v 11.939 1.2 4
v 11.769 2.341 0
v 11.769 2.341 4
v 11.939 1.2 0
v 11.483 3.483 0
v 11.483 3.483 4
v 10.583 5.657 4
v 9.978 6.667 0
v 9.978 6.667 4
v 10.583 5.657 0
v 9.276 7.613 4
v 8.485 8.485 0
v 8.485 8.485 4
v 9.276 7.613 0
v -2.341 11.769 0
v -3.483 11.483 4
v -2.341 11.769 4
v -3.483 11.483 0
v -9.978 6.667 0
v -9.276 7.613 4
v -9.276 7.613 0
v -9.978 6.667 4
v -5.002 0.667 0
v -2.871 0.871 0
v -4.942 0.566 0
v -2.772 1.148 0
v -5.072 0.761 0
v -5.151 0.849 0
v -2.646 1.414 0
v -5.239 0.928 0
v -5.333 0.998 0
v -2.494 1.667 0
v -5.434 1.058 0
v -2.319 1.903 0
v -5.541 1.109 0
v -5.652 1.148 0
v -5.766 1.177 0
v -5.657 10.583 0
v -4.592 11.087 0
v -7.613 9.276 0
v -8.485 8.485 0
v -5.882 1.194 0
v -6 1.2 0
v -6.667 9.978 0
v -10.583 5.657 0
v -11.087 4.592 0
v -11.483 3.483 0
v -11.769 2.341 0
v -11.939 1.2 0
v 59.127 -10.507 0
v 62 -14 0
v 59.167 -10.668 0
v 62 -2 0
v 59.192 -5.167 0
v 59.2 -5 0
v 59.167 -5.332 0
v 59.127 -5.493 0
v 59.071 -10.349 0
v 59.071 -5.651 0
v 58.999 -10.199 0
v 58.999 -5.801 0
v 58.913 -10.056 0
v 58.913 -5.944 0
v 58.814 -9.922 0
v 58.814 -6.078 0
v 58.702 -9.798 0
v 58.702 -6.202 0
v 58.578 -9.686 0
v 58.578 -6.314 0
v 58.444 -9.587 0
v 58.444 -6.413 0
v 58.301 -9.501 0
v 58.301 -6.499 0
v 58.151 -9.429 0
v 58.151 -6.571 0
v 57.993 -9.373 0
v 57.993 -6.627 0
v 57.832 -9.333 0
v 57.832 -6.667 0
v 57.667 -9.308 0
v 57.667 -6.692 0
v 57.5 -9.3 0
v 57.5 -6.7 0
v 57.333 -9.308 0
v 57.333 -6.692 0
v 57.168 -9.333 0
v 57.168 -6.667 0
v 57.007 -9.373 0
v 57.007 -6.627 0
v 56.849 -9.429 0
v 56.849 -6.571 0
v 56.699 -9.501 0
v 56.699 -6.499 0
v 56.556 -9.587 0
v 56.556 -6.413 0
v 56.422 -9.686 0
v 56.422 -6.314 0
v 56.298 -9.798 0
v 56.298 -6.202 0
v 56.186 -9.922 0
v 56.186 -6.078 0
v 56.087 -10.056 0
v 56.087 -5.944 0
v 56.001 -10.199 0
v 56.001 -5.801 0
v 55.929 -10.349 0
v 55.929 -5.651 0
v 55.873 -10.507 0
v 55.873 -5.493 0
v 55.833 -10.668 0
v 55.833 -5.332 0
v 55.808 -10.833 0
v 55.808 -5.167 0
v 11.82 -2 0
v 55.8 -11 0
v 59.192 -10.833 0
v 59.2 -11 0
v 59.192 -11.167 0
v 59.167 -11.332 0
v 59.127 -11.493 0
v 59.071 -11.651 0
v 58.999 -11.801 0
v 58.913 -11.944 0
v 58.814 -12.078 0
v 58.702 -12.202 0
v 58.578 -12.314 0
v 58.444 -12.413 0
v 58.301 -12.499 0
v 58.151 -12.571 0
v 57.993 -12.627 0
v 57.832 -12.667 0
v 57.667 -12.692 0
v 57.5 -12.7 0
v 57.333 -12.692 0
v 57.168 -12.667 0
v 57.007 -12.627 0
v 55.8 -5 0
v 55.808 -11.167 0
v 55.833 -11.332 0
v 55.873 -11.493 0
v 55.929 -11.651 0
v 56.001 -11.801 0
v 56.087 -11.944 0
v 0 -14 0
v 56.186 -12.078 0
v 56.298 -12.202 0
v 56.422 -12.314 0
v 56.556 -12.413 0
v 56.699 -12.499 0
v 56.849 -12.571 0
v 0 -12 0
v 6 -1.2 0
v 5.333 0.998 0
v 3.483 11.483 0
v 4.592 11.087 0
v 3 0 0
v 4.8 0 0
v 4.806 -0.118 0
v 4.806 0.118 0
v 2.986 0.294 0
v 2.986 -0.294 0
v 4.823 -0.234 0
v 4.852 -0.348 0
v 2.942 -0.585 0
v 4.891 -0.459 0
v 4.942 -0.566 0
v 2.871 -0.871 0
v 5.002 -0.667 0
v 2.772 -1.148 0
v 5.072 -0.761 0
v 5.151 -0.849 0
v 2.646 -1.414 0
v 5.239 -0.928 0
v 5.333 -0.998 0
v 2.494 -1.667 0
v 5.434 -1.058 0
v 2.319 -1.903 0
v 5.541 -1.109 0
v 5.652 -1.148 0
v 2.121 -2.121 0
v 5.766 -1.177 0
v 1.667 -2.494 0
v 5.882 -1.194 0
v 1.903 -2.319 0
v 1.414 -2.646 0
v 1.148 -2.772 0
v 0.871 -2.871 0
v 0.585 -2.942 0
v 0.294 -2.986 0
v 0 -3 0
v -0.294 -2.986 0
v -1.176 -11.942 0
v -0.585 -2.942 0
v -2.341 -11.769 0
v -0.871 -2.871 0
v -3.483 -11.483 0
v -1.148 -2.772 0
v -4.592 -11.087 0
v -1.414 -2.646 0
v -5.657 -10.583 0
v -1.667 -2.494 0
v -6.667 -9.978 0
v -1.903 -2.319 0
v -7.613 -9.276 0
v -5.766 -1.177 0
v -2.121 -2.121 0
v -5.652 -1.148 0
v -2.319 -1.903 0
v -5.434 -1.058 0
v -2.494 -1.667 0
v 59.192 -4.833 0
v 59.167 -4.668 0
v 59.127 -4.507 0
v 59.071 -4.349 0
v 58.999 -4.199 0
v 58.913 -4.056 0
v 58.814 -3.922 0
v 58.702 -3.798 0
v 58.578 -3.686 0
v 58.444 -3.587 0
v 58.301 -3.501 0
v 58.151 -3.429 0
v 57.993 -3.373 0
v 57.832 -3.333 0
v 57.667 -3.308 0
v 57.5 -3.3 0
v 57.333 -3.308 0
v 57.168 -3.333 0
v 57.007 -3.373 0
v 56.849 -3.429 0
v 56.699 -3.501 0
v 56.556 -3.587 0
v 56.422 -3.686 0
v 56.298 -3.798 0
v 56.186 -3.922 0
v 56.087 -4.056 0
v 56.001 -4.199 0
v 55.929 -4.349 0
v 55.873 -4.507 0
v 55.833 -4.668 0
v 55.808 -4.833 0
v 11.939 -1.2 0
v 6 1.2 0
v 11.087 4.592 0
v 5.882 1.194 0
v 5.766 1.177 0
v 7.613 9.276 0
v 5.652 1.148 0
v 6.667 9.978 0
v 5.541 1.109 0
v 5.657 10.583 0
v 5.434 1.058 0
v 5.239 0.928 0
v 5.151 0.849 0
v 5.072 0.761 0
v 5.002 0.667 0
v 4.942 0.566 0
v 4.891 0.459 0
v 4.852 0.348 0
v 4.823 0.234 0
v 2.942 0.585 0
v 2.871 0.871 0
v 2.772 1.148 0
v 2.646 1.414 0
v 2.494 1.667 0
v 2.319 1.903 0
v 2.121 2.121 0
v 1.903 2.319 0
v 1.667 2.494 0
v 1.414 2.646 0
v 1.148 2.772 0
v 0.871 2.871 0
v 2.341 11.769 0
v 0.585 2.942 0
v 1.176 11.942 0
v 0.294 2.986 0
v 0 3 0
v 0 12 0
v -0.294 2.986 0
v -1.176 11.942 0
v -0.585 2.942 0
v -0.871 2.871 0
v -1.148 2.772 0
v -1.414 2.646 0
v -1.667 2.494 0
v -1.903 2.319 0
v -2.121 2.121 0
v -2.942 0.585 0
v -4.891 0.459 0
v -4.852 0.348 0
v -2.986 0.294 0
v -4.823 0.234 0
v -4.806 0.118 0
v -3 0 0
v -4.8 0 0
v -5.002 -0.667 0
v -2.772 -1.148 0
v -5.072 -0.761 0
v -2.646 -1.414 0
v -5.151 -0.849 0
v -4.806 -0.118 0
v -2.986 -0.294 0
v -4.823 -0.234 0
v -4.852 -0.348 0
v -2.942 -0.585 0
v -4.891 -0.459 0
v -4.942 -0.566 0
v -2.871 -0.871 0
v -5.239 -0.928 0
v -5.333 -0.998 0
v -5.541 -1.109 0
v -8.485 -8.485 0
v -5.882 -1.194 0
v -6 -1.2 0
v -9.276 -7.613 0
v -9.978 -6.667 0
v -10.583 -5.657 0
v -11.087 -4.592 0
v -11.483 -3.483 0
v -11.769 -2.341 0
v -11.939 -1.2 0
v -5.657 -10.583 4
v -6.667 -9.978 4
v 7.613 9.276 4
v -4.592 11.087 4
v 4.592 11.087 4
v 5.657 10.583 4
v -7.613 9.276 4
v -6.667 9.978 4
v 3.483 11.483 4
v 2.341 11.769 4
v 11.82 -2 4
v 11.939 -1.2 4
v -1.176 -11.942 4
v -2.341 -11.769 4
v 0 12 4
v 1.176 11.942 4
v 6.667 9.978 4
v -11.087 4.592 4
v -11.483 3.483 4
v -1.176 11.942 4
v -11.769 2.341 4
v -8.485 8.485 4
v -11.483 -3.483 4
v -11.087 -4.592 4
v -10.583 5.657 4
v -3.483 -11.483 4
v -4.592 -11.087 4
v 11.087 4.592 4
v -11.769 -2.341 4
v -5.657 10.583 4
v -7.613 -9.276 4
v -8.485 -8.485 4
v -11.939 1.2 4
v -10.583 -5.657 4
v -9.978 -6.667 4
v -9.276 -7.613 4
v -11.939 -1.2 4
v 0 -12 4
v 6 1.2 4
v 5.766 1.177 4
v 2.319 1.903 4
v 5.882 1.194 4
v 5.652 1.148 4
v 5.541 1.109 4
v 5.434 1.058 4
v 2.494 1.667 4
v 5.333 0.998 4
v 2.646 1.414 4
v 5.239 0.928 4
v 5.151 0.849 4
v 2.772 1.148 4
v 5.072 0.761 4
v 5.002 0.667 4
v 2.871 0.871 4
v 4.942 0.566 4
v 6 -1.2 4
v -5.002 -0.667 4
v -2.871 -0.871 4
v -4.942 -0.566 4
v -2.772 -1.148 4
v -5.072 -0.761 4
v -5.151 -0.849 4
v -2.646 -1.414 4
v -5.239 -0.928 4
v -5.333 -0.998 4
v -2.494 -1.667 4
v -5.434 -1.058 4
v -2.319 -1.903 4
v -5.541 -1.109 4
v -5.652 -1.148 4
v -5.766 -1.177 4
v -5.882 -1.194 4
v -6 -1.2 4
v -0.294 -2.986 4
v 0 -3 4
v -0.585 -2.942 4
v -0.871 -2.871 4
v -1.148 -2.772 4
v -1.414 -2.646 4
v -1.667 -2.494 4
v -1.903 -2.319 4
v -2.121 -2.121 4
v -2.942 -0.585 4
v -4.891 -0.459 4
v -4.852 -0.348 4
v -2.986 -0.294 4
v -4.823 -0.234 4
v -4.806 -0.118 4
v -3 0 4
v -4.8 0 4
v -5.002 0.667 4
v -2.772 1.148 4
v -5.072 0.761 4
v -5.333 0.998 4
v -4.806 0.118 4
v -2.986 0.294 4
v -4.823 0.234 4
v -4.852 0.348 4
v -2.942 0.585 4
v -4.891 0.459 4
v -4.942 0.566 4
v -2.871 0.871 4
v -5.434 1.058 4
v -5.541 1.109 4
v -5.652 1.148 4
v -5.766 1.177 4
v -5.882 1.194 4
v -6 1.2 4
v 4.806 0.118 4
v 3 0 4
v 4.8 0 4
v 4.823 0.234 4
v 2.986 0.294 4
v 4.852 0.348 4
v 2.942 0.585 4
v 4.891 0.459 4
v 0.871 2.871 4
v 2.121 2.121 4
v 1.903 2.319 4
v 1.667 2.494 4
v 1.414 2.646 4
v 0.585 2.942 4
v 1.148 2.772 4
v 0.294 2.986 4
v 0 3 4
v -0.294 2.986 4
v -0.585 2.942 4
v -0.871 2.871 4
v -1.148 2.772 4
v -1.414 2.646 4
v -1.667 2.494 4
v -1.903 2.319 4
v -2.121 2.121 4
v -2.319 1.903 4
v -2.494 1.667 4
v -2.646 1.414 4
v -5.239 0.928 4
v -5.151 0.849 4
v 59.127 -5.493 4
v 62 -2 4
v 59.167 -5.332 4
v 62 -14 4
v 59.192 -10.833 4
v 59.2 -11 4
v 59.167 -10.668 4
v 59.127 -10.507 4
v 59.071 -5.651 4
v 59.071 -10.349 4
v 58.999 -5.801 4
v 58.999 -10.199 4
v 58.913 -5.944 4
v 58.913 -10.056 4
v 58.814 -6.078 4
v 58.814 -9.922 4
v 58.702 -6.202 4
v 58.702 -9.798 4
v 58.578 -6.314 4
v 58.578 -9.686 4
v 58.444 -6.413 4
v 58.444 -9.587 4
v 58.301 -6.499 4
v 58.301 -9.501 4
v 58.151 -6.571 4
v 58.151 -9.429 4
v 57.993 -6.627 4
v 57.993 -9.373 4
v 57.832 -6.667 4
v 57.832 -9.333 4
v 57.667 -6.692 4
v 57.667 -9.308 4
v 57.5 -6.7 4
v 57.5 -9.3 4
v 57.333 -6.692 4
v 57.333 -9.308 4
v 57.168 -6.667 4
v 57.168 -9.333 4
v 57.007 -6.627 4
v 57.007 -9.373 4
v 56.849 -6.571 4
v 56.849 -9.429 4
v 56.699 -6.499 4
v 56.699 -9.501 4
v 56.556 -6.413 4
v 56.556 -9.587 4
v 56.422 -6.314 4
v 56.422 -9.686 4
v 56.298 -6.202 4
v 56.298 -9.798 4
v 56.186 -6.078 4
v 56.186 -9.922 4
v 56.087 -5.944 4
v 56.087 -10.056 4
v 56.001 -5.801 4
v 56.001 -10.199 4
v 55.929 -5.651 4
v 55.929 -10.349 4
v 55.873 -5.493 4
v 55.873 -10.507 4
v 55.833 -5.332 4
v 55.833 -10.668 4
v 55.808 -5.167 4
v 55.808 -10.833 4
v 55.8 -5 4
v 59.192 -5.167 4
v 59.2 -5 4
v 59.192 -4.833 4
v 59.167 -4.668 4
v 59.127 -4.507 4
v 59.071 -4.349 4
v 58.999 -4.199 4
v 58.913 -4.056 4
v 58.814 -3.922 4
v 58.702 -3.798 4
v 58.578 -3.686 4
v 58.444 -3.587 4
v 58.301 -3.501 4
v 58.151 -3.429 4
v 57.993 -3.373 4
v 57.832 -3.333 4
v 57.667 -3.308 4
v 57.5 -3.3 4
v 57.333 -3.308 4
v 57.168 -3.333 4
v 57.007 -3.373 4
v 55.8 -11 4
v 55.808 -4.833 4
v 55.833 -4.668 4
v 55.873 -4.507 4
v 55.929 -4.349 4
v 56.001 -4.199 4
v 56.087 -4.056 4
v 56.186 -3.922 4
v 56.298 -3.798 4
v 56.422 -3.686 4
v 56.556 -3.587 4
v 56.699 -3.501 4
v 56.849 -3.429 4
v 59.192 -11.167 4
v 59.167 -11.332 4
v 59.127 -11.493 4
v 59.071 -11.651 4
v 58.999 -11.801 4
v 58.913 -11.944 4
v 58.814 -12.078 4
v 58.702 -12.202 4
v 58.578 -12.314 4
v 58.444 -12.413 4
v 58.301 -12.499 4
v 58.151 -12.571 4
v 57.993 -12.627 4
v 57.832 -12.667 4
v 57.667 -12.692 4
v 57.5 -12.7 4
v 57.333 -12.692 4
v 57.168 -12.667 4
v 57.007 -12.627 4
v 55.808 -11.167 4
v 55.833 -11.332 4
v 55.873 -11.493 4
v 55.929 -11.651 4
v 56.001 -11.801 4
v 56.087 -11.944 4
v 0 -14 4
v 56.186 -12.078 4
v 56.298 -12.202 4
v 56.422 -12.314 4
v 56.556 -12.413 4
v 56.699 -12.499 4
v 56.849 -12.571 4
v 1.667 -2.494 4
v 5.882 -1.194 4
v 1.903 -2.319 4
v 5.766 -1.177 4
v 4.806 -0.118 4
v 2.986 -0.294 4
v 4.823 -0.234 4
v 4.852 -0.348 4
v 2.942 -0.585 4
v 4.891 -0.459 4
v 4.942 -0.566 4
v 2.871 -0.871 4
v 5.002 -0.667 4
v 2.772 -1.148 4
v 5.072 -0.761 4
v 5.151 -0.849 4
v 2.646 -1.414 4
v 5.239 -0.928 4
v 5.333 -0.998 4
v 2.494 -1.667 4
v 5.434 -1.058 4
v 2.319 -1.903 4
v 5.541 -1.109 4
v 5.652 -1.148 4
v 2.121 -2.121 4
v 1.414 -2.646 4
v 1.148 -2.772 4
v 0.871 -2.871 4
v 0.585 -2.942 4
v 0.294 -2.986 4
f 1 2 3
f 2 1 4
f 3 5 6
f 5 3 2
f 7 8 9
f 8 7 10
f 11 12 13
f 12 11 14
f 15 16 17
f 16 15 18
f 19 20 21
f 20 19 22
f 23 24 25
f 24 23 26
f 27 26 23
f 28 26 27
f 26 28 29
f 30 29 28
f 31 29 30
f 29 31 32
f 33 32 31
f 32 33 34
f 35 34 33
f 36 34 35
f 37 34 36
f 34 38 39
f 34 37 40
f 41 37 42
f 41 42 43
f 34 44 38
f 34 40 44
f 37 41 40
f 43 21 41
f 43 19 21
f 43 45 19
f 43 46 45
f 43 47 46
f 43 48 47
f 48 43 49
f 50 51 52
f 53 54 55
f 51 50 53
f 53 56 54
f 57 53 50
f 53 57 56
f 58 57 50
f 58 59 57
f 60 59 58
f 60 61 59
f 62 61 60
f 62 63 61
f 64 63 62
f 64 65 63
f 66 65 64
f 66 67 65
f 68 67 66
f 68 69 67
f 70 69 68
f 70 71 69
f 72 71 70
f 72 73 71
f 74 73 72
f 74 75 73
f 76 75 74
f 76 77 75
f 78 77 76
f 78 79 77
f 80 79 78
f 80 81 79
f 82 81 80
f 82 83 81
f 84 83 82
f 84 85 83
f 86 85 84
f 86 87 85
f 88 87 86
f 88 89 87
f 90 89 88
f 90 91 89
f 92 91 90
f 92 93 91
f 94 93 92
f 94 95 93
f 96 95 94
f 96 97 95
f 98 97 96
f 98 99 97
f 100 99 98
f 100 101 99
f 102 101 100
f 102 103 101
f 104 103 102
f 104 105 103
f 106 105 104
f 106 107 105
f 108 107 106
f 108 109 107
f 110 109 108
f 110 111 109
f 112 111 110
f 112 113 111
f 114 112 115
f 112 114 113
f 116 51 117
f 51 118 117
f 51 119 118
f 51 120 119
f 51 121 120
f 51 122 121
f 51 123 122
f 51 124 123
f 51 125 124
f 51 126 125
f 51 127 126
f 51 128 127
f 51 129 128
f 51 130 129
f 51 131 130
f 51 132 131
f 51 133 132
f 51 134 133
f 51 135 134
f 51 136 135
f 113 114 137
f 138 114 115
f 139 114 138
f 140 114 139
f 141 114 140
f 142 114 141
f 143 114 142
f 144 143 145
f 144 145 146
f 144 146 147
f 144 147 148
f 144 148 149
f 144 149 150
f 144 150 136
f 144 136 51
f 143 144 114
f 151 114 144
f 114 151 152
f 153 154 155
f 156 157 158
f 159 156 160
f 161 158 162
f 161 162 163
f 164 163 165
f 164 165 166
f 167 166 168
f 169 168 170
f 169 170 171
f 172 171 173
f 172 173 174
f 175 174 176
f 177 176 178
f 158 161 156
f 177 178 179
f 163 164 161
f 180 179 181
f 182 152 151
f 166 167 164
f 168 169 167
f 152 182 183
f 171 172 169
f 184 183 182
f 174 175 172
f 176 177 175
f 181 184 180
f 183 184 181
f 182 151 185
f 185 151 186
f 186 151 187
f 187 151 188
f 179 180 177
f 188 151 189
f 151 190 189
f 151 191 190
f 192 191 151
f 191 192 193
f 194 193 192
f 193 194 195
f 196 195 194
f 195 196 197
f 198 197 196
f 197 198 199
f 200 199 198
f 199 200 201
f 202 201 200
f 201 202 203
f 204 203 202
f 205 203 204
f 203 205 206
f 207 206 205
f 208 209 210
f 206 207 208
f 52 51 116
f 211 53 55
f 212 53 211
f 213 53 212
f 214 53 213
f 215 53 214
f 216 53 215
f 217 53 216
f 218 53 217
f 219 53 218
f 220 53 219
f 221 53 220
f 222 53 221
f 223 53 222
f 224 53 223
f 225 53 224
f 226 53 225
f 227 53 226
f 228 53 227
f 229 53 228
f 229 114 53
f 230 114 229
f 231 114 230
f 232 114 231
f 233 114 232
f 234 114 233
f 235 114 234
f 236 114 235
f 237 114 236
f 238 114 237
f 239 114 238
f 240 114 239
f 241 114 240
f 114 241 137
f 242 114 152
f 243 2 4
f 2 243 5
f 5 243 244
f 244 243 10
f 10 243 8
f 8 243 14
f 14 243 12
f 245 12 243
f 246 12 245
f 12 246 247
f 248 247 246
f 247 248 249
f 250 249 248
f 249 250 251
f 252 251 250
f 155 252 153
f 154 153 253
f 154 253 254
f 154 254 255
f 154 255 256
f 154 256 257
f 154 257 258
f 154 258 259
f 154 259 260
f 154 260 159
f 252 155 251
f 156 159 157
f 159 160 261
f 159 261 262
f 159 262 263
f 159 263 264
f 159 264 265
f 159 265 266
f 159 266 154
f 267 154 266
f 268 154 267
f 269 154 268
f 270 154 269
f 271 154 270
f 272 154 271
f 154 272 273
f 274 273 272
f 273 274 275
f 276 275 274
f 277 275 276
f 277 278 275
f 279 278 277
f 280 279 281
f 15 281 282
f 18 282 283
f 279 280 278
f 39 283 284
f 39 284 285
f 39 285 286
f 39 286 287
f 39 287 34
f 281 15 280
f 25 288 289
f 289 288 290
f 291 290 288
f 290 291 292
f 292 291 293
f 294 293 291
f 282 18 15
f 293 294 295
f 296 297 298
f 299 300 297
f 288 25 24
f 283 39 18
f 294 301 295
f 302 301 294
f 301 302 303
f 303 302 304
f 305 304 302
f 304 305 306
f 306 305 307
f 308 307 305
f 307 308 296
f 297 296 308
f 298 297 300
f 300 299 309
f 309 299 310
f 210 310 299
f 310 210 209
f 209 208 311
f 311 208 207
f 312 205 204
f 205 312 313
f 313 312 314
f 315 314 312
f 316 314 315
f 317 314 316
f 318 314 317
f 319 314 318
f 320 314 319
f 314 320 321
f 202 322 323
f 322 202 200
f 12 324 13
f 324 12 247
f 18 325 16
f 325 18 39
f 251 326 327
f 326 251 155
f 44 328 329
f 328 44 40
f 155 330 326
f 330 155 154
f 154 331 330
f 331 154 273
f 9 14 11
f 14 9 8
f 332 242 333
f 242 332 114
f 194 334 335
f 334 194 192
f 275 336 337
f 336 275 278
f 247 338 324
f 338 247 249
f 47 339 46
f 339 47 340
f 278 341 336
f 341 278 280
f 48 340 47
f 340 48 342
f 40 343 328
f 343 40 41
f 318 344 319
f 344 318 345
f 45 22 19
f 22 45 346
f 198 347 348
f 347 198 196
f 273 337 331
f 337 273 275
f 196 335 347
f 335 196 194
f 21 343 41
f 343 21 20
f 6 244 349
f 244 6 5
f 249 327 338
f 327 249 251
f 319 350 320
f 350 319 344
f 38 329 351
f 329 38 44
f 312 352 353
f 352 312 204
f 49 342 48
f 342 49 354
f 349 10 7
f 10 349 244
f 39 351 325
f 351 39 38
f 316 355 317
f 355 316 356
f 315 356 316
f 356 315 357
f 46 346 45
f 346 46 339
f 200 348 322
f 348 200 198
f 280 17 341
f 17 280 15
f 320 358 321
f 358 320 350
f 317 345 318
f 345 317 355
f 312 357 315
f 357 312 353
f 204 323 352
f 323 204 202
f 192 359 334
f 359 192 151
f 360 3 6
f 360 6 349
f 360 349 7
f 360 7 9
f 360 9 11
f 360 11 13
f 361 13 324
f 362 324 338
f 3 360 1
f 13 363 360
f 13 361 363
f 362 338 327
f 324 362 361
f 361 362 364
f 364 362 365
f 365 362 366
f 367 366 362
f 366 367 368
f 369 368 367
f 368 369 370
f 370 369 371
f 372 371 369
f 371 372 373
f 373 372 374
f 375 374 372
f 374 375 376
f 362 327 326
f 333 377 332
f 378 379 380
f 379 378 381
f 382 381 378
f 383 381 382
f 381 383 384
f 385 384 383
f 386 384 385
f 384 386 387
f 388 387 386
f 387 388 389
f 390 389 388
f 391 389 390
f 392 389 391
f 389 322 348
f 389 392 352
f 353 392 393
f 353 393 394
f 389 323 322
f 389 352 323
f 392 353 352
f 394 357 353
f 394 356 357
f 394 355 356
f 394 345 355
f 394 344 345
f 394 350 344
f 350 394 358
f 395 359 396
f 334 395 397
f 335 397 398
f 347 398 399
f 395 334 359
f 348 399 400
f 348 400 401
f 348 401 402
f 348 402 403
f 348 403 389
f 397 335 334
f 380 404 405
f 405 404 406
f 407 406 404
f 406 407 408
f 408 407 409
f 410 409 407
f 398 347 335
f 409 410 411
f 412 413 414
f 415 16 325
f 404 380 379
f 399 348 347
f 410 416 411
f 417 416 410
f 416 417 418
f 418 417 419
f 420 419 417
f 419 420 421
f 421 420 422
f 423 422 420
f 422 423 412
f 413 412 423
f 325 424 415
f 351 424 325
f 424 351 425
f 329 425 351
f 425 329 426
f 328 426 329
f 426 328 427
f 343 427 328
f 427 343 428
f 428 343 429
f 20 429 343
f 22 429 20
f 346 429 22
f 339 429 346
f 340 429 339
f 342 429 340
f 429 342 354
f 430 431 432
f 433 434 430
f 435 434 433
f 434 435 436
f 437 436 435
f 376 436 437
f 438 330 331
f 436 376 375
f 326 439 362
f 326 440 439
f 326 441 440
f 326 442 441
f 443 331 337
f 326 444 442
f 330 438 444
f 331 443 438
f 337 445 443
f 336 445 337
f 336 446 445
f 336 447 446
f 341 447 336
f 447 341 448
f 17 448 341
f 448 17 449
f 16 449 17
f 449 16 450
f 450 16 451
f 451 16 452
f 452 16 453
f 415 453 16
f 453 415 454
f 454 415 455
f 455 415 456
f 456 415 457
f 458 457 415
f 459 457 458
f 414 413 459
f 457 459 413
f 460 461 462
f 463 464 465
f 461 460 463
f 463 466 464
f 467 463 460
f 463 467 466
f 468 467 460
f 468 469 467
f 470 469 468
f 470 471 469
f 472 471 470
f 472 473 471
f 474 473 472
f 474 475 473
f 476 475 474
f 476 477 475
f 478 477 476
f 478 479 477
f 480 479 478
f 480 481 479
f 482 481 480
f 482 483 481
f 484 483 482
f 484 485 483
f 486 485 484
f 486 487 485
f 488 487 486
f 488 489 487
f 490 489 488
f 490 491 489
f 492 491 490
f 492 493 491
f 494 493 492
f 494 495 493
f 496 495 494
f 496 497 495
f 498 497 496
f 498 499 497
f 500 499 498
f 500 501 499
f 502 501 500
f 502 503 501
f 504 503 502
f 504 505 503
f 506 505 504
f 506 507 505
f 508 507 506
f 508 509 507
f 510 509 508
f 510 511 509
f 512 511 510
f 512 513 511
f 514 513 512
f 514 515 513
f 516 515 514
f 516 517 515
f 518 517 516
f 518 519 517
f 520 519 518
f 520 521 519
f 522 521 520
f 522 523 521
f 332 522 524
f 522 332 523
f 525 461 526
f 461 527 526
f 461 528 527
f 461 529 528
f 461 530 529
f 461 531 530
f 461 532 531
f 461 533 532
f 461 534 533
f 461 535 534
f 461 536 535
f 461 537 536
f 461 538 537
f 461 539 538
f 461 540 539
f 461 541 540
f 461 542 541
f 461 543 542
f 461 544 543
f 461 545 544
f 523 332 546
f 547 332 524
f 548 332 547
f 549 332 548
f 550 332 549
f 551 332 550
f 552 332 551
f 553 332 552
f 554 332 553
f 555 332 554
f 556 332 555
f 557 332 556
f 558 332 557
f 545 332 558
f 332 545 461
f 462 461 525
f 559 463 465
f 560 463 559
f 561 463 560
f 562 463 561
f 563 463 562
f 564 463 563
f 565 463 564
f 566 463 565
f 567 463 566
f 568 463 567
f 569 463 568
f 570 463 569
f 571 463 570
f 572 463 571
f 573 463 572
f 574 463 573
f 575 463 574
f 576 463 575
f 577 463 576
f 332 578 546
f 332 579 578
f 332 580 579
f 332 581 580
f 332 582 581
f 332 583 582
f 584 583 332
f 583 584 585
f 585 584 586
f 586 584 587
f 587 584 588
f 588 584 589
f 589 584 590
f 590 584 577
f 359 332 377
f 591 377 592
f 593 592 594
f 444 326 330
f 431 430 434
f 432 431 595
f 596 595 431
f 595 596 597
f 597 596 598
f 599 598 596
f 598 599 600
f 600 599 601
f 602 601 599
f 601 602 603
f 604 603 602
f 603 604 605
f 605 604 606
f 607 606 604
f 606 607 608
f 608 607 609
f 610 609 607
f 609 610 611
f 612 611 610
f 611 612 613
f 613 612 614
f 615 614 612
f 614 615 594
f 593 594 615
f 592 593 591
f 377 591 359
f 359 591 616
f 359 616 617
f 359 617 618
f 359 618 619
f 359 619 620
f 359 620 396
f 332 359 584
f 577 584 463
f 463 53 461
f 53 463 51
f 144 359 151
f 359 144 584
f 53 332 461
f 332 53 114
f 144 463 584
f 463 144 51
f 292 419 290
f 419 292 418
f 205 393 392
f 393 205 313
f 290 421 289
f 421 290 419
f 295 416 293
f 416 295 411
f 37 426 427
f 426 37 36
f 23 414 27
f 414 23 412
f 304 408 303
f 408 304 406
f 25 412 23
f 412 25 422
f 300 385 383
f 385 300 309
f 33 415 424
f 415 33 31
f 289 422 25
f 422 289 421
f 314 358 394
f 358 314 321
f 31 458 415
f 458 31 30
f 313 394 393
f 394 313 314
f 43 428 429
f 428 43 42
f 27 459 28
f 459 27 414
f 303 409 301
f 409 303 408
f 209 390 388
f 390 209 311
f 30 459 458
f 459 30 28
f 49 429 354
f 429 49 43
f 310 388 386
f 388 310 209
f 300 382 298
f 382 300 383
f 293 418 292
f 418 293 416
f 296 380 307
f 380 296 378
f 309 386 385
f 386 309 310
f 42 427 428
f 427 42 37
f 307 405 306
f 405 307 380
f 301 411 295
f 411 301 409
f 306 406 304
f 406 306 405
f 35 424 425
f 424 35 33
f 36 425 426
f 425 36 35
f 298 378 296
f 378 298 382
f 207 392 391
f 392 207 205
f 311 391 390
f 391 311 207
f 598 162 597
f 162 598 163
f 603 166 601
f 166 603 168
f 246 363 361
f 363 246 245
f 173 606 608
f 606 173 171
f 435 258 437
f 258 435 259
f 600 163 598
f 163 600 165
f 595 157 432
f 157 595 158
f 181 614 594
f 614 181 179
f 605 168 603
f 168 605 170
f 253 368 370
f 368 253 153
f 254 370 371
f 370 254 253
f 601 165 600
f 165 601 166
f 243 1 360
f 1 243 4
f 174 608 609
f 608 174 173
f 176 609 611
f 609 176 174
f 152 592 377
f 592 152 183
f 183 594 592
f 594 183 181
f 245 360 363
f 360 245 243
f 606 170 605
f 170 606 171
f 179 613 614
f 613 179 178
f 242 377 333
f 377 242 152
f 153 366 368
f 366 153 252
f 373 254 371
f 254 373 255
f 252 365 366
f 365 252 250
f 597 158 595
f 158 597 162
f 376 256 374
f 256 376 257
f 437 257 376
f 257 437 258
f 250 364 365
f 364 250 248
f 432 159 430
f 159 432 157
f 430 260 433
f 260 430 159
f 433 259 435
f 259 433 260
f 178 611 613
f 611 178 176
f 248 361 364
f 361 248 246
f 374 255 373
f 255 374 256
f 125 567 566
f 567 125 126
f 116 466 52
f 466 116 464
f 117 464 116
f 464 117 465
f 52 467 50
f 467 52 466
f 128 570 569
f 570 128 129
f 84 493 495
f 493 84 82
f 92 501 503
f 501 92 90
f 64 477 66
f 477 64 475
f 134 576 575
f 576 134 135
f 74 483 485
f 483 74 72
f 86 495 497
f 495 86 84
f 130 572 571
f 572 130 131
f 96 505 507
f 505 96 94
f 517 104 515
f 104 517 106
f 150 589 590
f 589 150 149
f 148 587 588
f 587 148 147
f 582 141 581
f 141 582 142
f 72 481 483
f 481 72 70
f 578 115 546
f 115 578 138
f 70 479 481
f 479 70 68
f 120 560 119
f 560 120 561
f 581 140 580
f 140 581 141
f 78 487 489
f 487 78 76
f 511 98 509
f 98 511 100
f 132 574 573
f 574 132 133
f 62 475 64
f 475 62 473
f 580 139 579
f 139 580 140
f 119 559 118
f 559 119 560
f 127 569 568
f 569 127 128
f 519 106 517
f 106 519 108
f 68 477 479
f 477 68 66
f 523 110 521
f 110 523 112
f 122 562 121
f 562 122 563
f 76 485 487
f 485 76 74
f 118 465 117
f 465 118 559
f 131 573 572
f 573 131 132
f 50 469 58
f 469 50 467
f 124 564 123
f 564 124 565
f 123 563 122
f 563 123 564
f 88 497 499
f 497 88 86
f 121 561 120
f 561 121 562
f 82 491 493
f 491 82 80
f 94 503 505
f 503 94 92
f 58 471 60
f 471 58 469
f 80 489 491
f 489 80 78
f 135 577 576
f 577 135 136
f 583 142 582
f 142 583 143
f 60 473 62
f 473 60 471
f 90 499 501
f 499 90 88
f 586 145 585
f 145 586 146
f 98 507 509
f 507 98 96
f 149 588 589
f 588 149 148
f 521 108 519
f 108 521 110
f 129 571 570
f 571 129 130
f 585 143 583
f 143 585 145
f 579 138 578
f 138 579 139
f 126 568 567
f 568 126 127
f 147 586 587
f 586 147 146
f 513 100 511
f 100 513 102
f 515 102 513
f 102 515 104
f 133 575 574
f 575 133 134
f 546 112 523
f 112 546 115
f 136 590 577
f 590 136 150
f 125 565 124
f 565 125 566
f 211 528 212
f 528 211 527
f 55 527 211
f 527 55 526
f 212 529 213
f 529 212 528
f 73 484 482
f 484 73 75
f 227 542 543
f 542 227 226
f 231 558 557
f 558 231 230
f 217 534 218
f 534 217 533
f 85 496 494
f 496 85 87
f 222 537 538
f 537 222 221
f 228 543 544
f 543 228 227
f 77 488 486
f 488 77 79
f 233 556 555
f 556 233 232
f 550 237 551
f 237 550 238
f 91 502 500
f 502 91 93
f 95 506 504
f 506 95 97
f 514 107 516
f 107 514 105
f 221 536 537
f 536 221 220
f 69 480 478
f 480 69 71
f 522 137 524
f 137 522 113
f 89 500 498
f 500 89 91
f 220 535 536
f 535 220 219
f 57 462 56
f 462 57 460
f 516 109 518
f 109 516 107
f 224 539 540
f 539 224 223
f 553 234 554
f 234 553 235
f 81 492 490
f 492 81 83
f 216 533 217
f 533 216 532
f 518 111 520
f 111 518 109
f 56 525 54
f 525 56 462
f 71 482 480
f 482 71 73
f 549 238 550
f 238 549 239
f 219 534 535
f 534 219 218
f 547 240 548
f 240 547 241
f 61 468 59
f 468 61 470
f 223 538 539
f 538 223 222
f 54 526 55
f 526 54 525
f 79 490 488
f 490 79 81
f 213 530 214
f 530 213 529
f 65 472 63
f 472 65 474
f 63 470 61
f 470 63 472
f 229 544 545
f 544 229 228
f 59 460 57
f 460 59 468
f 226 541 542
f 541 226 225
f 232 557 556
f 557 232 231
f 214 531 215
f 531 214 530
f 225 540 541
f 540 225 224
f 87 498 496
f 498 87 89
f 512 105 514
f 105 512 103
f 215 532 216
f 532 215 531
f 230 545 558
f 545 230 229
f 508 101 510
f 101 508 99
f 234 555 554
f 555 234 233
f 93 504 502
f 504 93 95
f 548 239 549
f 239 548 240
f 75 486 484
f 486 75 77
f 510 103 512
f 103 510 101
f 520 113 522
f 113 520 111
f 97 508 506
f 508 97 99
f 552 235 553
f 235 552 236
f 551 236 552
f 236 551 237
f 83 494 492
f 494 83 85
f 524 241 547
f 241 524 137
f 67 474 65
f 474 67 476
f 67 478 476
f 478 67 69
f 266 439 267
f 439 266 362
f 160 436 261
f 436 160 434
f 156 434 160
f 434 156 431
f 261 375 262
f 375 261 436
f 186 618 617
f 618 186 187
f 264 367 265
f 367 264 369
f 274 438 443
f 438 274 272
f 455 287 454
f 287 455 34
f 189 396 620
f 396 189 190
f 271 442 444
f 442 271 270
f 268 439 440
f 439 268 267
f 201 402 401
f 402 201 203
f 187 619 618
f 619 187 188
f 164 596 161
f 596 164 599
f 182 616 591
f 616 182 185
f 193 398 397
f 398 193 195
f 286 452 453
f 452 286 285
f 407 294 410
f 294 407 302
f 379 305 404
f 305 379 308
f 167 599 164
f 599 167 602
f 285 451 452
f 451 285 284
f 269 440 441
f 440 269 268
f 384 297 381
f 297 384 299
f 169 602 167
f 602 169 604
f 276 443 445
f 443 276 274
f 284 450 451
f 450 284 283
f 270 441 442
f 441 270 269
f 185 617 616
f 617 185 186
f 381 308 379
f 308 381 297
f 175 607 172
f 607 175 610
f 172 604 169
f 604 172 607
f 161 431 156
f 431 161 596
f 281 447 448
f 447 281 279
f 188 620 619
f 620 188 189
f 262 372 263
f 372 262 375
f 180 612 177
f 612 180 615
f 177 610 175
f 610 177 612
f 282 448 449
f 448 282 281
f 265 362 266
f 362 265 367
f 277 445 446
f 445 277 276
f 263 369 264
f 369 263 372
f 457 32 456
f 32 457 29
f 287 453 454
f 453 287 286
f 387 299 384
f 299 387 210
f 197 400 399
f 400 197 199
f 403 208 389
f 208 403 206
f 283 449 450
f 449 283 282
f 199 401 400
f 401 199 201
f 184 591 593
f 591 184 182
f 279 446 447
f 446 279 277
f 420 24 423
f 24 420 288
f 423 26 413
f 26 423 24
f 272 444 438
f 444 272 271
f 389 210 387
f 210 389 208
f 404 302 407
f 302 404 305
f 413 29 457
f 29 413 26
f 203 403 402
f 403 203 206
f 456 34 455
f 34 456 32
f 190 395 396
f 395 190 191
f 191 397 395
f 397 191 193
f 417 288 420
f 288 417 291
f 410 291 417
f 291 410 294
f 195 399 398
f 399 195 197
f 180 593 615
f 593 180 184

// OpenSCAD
// file: ../lib.scad
// Solar Rover - shared helper modules
include <config.scad>

// Rounded rectangle plate, centred in XY, sitting on Z=0.
module rbox(size, r=4) {
    x = size[0]; y = size[1]; z = size[2];
    hull() for (sx=[-1,1], sy=[-1,1])
        translate([sx*(x/2-r), sy*(y/2-r), 0]) cylinder(r=r, h=z);
}

// Vertical hole through everything (subtract). Centred on the origin.
module hole(d, h=200) { translate([0,0,-h/2]) cylinder(d=d, h=h); }

// Heat-set insert pocket opening upward at Z=top.
module insert_m3(top) { translate([0,0,top-m3_insert_h]) cylinder(d=m3_insert_d, h=m3_insert_h+0.01); }
module insert_m25(top) { translate([0,0,top-4.5]) cylinder(d=m25_insert_d, h=4.51); }

// Boss for an insert: cylinder from z0 to z1, with insert pocket at the top.
module insert_boss_m3(z0, z1, od=8) {
    difference() {
        translate([0,0,z0]) cylinder(d=od, h=z1-z0);
        insert_m3(z1);
    }
}

// Slot of length l (centre-to-centre) along X, diameter d.
module slot(l, d, h=200) {
    hull() for (sx=[-1,1]) translate([sx*l/2,0,-h/2]) cylinder(d=d, h=h);
}

// Counterbored M3 clearance hole, head at Z=top going down.
module m3_cbore(top, depth=m3_head_h) {
    hole(m3_clear);
    translate([0,0,top-depth]) cylinder(d=m3_head_d, h=depth+50);
}

// Captive hex nut pocket, opening at Z=z (nut goes in from that face).
module m3_nut_pocket(z, depth=m3_nut_h+0.4) {
    translate([0,0,z-depth]) cylinder(d=m3_nut_af/cos(30), h=depth+0.01, $fn=6);
}

// Pair of zip-tie slots (for modules without mounting holes), spaced s apart along X.
module zip_slots(s=30, w=4, l=2.2) {
    for (sx=[-1,1]) translate([sx*s/2,0,0]) cube([l, w, 50], center=true);
}

// D-shaped bore for TT motor shafts.
module d_bore(h=50, extra=0) {
    intersection() {
        cylinder(d=tt_shaft_d+extra, h=h);
        translate([-(tt_shaft_d+extra)/2, -(tt_shaft_flat+extra)/2, 0])
            cube([tt_shaft_d+extra, tt_shaft_flat+extra, h]);
    }
}

// Simple spur gear (trapezoid teeth), module m, z teeth, thickness t. Good enough
// for a slow servo gripper; not a precision involute.
module spur_gear(m=1.25, z=16, t=6, bore=0) {
    rp = m*z/2; ra = rp + m; rf = rp - 1.25*m;
    difference() {
        linear_extrude(t) union() {
            circle(r=rf, $fn=z*4);
            for (i=[0:z-1]) rotate(i*360/z)
                polygon([[rf*cos(-90/z*1.1), rf*sin(-90/z*1.1)],
                         [ra*cos(-90/z*0.45), ra*sin(-90/z*0.45)],
                         [ra*cos( 90/z*0.45), ra*sin( 90/z*0.45)],
                         [rf*cos( 90/z*1.1), rf*sin( 90/z*1.1)]]);
        }
        if (bore > 0) hole(bore);
    }
}

// Servo pocket for an MG996R lying with its output axis along +Z.
// Case centred so the OUTPUT SHAFT is at the origin; case top at Z=0.
module mg996_case_neg(extra=tol) {
    translate([-mg996_shaft_off-extra, -mg996_w/2-extra, -mg996_h-extra])
        cube([mg996_l+2*extra, mg996_w+2*extra, mg996_h+extra+0.01]);
}
module mg996_flange_holes(d=m3_clear, h=60) {
    cx = mg996_l/2 - mg996_shaft_off;
    for (sx=[-1,1], sy=[-1,1])
        translate([cx+sx*mg996_hole_dx/2, sy*mg996_hole_dy/2, -h/2]) cylinder(d=d, h=h);
}
module mg90_case_neg(extra=tol) {
    translate([-mg90_shaft_off-extra, -mg90_w/2-extra, -mg90_h-extra])
        cube([mg90_l+2*extra, mg90_w+2*extra, mg90_h+extra+0.01]);
}
module mg90_flange_holes(d=m2_pilot, h=60) {
    cx = mg90_l/2 - mg90_shaft_off;
    for (sx=[-1,1]) translate([cx+sx*mg90_hole_dx/2, 0, -h/2]) cylinder(d=d, h=h);
}
// Round MG996R horn screw pattern (4 holes) + centre relief.
module mg996_horn_holes(d=m3_clear) {
    hole(9);
    for (a=[0:90:270]) rotate(a) translate([mg996_horn_hole_r,0,0]) hole(d);
}
// file: ../config.scad
// Solar Rover - shared dimensions (all mm)
// Coordinate system: X = forward, Y = left, Z = up. Origin = deck centre, ground at Z=0.
//
// Values marked MEASURE come from typical datasheets/clones and vary between
// suppliers. Measure your parts with calipers and edit them here before printing;
// every part reads its dimensions from this file.

$fn = 64;

// ---------- print / fit ----------
tol        = 0.25;   // general clearance per side
wall       = 2.4;    // default wall (6 perimeters at 0.4 mm nozzle)

// ---------- fasteners ----------
m3_clear     = 3.4;   // M3 clearance hole
m3_insert_d  = 4.1;   // hole for M3x5x4 brass heat-set insert (OD ~4.6)
m3_insert_h  = 5.5;   // insert hole depth
m3_head_d    = 6.2;   // socket head counterbore
m3_head_h    = 3.2;
m3_nut_af    = 5.6;   // nut across flats (+clearance)
m3_nut_h     = 2.6;
m25_clear    = 2.9;
m25_insert_d = 3.5;   // M2.5 insert hole (OD ~4.0)
m2_clear     = 2.4;
m2_pilot     = 1.7;   // pilot hole for M2 thread-forming screw

// ---------- deck ----------
deck_l     = 300;     // printed as two 150 mm halves
deck_w     = 146;
deck_t     = 4;
rib_h      = 8;
rib_w      = 2.4;
flange_h   = 14;      // joint flange (bolts the halves together)
flange_t   = 5;

// ---------- drive ----------
wheel_d       = 65;
wheel_w       = 26;
axle_z        = wheel_d/2;    // axle height above ground
axle_x        = 100;          // front axle at +axle_x, rear at -axle_x
// TT gear motor (dual-shaft, 1:48). MEASURE.
tt_body_l     = 64;           // along X (gearbox + motor can)
tt_body_t     = 22.5;         // along Y (shaft direction)
tt_body_h     = 18.8;         // along Z
tt_shaft_from_end = 11.3;     // shaft centre to gearbox front end
tt_shaft_d    = 5.4;          // D-shaft across round
tt_shaft_flat = 3.7;          // D-shaft across flats
tt_shaft_len  = 9;            // per side, beyond the body face
// two through-holes parallel to the shaft, positions relative to shaft centre [x, z]. MEASURE.
tt_holes      = [[-20.0, 5.5], [-20.0, -5.5]];
motor_outer_y = 72;           // motor face nearest the wheel
clamp_t       = 3;            // clamp plate thickness
deck_bottom_z = axle_z + tt_body_h/2 + clamp_t;   // 44.6
deck_top_z    = deck_bottom_z + deck_t;

// ---------- encoder ----------
enc_slots   = 20;
enc_disc_d  = 22;
enc_disc_t  = 1.6;

// ---------- turret / arm ----------
turret_x      = 108;
turret_d      = 84;           // base OD; top plate skirt overlaps it
turret_h      = 48;           // fixed base height above deck (servo hangs inside)
turret_deck_r = 30;           // 4x M3 at 45/135/225/315 deg: turret base to deck
turret_bolts  = [[20,28],[-20,28],[20,-28],[-20,-28]];  // module interface on the turret top (4x M3)
shoulder_z    = 45;           // shoulder axis above the turret top plate
// MG996R servo. MEASURE.
mg996_l   = 40.7;  mg996_w = 19.7;  mg996_h = 37.0;   // case (h = to top of case)
mg996_flange_l = 54.5; mg996_flange_z = 27.5;  mg996_flange_t = 2.5;
mg996_hole_dx = 49.5; mg996_hole_dy = 10.0; mg996_hole_d = 4.5;
mg996_shaft_off = 10.0;       // output shaft centre from case end
mg996_spline_h  = 6.0;        // case top to horn face
mg996_horn_d    = 22;         // round metal horn
mg996_horn_hole_r = 7.5;      // horn screw circle radius (MEASURE: usually 4 holes)
// MG90S servo. MEASURE.
mg90_l = 22.8; mg90_w = 12.2; mg90_h = 22.7;
mg90_flange_l = 32.5; mg90_flange_z = 16.0; mg90_flange_t = 2.5;
mg90_hole_dx = 27.6; mg90_hole_d = 2.0;
mg90_shaft_off = 6.0;
mg90_spline_h = 5.0;
mg90_horn_d = 7;              // horn hub (single-arm horn)

link_upper = 100;   // shoulder -> elbow
link_fore  = 90;    // elbow -> wrist
link_hand  = 70;    // wrist -> fingertip

// ---------- power / electronics ----------
cell_holder = [77, 80, 21];   // 4x18650 holder footprint. MEASURE.
pi0_holes   = [58, 23];       // Raspberry Pi Zero 2 W, M2.5
pca_holes   = [55.9, 19.0];   // Adafruit-style PCA9685, M2.5. MEASURE (clones vary)
esp_exp_holes = [47, 70];     // ESP32 38-pin screw-terminal expansion board (77x54 mm), M3. MEASURE.
cradle_tb6612 = [20.5, 20.5];  // TB6612FNG breakout board outline. MEASURE.
cradle_mp1584 = [22.4, 17.0];  // MP1584 mini buck outline. MEASURE.
module_slot_w = 2.6;          // module-plate slots: M2/M2.5 screw + nut, or a 2.5 mm zip tie
tray_standoff_h = 32;         // power tray top to logic tray underside
// charge tray: a slotted plate on 4 legs over the battery holder
charge_tray_c    = [-106, 0];         // centre on the deck (same as the battery holder)
charge_tray_size = [76, 102];         // X, Y
charge_tray_z    = 24;                // deck top to plate underside (holder is 21 mm tall)
charge_tray_legs = [for (x=[-34,28], sy=[-1,1]) [x, sy*46]];   // relative to the centre; the front pair clears the motor-clamp inserts

// ---------- body / solar ----------
panel     = [110, 136, 3];    // 6V 2W panel: X, Y, thickness. MEASURE.
roof_post_h = 75;             // deck top to roof tray underside (room for plugged-in jumpers)
tray_frame  = 4;
roof_front_x = 60;            // front tray spans -60..60, rear tray -180..-60
// main file
// Gripper horn arm (print 1). Screws to the wrist MG90S horn (2x M2 through the
// slots into the horn, plus the horn's centre screw) and to the palm side block
// (2x M3x8). Print flat.
include <../config.scad>
use <../lib.scad>
t = 4;
// XZ outline drawn in XY for printing (Y here = Z on the robot)
difference() {
    union() {
        // hub on the horn, then a bar that stays below the palm plate (Y < -2)
        cylinder(r=12, h=t);
        translate([0,-14,0]) cube([62, 12, t]);
    }
    hole(6);
    for (s=[-1,1]) rotate(s>0 ? 0 : 180) translate([9.5,0,0]) slot(7, m2_clear);
    for (z=[-11,-5]) translate([57.5, z, 0]) hole(m3_clear);
}
